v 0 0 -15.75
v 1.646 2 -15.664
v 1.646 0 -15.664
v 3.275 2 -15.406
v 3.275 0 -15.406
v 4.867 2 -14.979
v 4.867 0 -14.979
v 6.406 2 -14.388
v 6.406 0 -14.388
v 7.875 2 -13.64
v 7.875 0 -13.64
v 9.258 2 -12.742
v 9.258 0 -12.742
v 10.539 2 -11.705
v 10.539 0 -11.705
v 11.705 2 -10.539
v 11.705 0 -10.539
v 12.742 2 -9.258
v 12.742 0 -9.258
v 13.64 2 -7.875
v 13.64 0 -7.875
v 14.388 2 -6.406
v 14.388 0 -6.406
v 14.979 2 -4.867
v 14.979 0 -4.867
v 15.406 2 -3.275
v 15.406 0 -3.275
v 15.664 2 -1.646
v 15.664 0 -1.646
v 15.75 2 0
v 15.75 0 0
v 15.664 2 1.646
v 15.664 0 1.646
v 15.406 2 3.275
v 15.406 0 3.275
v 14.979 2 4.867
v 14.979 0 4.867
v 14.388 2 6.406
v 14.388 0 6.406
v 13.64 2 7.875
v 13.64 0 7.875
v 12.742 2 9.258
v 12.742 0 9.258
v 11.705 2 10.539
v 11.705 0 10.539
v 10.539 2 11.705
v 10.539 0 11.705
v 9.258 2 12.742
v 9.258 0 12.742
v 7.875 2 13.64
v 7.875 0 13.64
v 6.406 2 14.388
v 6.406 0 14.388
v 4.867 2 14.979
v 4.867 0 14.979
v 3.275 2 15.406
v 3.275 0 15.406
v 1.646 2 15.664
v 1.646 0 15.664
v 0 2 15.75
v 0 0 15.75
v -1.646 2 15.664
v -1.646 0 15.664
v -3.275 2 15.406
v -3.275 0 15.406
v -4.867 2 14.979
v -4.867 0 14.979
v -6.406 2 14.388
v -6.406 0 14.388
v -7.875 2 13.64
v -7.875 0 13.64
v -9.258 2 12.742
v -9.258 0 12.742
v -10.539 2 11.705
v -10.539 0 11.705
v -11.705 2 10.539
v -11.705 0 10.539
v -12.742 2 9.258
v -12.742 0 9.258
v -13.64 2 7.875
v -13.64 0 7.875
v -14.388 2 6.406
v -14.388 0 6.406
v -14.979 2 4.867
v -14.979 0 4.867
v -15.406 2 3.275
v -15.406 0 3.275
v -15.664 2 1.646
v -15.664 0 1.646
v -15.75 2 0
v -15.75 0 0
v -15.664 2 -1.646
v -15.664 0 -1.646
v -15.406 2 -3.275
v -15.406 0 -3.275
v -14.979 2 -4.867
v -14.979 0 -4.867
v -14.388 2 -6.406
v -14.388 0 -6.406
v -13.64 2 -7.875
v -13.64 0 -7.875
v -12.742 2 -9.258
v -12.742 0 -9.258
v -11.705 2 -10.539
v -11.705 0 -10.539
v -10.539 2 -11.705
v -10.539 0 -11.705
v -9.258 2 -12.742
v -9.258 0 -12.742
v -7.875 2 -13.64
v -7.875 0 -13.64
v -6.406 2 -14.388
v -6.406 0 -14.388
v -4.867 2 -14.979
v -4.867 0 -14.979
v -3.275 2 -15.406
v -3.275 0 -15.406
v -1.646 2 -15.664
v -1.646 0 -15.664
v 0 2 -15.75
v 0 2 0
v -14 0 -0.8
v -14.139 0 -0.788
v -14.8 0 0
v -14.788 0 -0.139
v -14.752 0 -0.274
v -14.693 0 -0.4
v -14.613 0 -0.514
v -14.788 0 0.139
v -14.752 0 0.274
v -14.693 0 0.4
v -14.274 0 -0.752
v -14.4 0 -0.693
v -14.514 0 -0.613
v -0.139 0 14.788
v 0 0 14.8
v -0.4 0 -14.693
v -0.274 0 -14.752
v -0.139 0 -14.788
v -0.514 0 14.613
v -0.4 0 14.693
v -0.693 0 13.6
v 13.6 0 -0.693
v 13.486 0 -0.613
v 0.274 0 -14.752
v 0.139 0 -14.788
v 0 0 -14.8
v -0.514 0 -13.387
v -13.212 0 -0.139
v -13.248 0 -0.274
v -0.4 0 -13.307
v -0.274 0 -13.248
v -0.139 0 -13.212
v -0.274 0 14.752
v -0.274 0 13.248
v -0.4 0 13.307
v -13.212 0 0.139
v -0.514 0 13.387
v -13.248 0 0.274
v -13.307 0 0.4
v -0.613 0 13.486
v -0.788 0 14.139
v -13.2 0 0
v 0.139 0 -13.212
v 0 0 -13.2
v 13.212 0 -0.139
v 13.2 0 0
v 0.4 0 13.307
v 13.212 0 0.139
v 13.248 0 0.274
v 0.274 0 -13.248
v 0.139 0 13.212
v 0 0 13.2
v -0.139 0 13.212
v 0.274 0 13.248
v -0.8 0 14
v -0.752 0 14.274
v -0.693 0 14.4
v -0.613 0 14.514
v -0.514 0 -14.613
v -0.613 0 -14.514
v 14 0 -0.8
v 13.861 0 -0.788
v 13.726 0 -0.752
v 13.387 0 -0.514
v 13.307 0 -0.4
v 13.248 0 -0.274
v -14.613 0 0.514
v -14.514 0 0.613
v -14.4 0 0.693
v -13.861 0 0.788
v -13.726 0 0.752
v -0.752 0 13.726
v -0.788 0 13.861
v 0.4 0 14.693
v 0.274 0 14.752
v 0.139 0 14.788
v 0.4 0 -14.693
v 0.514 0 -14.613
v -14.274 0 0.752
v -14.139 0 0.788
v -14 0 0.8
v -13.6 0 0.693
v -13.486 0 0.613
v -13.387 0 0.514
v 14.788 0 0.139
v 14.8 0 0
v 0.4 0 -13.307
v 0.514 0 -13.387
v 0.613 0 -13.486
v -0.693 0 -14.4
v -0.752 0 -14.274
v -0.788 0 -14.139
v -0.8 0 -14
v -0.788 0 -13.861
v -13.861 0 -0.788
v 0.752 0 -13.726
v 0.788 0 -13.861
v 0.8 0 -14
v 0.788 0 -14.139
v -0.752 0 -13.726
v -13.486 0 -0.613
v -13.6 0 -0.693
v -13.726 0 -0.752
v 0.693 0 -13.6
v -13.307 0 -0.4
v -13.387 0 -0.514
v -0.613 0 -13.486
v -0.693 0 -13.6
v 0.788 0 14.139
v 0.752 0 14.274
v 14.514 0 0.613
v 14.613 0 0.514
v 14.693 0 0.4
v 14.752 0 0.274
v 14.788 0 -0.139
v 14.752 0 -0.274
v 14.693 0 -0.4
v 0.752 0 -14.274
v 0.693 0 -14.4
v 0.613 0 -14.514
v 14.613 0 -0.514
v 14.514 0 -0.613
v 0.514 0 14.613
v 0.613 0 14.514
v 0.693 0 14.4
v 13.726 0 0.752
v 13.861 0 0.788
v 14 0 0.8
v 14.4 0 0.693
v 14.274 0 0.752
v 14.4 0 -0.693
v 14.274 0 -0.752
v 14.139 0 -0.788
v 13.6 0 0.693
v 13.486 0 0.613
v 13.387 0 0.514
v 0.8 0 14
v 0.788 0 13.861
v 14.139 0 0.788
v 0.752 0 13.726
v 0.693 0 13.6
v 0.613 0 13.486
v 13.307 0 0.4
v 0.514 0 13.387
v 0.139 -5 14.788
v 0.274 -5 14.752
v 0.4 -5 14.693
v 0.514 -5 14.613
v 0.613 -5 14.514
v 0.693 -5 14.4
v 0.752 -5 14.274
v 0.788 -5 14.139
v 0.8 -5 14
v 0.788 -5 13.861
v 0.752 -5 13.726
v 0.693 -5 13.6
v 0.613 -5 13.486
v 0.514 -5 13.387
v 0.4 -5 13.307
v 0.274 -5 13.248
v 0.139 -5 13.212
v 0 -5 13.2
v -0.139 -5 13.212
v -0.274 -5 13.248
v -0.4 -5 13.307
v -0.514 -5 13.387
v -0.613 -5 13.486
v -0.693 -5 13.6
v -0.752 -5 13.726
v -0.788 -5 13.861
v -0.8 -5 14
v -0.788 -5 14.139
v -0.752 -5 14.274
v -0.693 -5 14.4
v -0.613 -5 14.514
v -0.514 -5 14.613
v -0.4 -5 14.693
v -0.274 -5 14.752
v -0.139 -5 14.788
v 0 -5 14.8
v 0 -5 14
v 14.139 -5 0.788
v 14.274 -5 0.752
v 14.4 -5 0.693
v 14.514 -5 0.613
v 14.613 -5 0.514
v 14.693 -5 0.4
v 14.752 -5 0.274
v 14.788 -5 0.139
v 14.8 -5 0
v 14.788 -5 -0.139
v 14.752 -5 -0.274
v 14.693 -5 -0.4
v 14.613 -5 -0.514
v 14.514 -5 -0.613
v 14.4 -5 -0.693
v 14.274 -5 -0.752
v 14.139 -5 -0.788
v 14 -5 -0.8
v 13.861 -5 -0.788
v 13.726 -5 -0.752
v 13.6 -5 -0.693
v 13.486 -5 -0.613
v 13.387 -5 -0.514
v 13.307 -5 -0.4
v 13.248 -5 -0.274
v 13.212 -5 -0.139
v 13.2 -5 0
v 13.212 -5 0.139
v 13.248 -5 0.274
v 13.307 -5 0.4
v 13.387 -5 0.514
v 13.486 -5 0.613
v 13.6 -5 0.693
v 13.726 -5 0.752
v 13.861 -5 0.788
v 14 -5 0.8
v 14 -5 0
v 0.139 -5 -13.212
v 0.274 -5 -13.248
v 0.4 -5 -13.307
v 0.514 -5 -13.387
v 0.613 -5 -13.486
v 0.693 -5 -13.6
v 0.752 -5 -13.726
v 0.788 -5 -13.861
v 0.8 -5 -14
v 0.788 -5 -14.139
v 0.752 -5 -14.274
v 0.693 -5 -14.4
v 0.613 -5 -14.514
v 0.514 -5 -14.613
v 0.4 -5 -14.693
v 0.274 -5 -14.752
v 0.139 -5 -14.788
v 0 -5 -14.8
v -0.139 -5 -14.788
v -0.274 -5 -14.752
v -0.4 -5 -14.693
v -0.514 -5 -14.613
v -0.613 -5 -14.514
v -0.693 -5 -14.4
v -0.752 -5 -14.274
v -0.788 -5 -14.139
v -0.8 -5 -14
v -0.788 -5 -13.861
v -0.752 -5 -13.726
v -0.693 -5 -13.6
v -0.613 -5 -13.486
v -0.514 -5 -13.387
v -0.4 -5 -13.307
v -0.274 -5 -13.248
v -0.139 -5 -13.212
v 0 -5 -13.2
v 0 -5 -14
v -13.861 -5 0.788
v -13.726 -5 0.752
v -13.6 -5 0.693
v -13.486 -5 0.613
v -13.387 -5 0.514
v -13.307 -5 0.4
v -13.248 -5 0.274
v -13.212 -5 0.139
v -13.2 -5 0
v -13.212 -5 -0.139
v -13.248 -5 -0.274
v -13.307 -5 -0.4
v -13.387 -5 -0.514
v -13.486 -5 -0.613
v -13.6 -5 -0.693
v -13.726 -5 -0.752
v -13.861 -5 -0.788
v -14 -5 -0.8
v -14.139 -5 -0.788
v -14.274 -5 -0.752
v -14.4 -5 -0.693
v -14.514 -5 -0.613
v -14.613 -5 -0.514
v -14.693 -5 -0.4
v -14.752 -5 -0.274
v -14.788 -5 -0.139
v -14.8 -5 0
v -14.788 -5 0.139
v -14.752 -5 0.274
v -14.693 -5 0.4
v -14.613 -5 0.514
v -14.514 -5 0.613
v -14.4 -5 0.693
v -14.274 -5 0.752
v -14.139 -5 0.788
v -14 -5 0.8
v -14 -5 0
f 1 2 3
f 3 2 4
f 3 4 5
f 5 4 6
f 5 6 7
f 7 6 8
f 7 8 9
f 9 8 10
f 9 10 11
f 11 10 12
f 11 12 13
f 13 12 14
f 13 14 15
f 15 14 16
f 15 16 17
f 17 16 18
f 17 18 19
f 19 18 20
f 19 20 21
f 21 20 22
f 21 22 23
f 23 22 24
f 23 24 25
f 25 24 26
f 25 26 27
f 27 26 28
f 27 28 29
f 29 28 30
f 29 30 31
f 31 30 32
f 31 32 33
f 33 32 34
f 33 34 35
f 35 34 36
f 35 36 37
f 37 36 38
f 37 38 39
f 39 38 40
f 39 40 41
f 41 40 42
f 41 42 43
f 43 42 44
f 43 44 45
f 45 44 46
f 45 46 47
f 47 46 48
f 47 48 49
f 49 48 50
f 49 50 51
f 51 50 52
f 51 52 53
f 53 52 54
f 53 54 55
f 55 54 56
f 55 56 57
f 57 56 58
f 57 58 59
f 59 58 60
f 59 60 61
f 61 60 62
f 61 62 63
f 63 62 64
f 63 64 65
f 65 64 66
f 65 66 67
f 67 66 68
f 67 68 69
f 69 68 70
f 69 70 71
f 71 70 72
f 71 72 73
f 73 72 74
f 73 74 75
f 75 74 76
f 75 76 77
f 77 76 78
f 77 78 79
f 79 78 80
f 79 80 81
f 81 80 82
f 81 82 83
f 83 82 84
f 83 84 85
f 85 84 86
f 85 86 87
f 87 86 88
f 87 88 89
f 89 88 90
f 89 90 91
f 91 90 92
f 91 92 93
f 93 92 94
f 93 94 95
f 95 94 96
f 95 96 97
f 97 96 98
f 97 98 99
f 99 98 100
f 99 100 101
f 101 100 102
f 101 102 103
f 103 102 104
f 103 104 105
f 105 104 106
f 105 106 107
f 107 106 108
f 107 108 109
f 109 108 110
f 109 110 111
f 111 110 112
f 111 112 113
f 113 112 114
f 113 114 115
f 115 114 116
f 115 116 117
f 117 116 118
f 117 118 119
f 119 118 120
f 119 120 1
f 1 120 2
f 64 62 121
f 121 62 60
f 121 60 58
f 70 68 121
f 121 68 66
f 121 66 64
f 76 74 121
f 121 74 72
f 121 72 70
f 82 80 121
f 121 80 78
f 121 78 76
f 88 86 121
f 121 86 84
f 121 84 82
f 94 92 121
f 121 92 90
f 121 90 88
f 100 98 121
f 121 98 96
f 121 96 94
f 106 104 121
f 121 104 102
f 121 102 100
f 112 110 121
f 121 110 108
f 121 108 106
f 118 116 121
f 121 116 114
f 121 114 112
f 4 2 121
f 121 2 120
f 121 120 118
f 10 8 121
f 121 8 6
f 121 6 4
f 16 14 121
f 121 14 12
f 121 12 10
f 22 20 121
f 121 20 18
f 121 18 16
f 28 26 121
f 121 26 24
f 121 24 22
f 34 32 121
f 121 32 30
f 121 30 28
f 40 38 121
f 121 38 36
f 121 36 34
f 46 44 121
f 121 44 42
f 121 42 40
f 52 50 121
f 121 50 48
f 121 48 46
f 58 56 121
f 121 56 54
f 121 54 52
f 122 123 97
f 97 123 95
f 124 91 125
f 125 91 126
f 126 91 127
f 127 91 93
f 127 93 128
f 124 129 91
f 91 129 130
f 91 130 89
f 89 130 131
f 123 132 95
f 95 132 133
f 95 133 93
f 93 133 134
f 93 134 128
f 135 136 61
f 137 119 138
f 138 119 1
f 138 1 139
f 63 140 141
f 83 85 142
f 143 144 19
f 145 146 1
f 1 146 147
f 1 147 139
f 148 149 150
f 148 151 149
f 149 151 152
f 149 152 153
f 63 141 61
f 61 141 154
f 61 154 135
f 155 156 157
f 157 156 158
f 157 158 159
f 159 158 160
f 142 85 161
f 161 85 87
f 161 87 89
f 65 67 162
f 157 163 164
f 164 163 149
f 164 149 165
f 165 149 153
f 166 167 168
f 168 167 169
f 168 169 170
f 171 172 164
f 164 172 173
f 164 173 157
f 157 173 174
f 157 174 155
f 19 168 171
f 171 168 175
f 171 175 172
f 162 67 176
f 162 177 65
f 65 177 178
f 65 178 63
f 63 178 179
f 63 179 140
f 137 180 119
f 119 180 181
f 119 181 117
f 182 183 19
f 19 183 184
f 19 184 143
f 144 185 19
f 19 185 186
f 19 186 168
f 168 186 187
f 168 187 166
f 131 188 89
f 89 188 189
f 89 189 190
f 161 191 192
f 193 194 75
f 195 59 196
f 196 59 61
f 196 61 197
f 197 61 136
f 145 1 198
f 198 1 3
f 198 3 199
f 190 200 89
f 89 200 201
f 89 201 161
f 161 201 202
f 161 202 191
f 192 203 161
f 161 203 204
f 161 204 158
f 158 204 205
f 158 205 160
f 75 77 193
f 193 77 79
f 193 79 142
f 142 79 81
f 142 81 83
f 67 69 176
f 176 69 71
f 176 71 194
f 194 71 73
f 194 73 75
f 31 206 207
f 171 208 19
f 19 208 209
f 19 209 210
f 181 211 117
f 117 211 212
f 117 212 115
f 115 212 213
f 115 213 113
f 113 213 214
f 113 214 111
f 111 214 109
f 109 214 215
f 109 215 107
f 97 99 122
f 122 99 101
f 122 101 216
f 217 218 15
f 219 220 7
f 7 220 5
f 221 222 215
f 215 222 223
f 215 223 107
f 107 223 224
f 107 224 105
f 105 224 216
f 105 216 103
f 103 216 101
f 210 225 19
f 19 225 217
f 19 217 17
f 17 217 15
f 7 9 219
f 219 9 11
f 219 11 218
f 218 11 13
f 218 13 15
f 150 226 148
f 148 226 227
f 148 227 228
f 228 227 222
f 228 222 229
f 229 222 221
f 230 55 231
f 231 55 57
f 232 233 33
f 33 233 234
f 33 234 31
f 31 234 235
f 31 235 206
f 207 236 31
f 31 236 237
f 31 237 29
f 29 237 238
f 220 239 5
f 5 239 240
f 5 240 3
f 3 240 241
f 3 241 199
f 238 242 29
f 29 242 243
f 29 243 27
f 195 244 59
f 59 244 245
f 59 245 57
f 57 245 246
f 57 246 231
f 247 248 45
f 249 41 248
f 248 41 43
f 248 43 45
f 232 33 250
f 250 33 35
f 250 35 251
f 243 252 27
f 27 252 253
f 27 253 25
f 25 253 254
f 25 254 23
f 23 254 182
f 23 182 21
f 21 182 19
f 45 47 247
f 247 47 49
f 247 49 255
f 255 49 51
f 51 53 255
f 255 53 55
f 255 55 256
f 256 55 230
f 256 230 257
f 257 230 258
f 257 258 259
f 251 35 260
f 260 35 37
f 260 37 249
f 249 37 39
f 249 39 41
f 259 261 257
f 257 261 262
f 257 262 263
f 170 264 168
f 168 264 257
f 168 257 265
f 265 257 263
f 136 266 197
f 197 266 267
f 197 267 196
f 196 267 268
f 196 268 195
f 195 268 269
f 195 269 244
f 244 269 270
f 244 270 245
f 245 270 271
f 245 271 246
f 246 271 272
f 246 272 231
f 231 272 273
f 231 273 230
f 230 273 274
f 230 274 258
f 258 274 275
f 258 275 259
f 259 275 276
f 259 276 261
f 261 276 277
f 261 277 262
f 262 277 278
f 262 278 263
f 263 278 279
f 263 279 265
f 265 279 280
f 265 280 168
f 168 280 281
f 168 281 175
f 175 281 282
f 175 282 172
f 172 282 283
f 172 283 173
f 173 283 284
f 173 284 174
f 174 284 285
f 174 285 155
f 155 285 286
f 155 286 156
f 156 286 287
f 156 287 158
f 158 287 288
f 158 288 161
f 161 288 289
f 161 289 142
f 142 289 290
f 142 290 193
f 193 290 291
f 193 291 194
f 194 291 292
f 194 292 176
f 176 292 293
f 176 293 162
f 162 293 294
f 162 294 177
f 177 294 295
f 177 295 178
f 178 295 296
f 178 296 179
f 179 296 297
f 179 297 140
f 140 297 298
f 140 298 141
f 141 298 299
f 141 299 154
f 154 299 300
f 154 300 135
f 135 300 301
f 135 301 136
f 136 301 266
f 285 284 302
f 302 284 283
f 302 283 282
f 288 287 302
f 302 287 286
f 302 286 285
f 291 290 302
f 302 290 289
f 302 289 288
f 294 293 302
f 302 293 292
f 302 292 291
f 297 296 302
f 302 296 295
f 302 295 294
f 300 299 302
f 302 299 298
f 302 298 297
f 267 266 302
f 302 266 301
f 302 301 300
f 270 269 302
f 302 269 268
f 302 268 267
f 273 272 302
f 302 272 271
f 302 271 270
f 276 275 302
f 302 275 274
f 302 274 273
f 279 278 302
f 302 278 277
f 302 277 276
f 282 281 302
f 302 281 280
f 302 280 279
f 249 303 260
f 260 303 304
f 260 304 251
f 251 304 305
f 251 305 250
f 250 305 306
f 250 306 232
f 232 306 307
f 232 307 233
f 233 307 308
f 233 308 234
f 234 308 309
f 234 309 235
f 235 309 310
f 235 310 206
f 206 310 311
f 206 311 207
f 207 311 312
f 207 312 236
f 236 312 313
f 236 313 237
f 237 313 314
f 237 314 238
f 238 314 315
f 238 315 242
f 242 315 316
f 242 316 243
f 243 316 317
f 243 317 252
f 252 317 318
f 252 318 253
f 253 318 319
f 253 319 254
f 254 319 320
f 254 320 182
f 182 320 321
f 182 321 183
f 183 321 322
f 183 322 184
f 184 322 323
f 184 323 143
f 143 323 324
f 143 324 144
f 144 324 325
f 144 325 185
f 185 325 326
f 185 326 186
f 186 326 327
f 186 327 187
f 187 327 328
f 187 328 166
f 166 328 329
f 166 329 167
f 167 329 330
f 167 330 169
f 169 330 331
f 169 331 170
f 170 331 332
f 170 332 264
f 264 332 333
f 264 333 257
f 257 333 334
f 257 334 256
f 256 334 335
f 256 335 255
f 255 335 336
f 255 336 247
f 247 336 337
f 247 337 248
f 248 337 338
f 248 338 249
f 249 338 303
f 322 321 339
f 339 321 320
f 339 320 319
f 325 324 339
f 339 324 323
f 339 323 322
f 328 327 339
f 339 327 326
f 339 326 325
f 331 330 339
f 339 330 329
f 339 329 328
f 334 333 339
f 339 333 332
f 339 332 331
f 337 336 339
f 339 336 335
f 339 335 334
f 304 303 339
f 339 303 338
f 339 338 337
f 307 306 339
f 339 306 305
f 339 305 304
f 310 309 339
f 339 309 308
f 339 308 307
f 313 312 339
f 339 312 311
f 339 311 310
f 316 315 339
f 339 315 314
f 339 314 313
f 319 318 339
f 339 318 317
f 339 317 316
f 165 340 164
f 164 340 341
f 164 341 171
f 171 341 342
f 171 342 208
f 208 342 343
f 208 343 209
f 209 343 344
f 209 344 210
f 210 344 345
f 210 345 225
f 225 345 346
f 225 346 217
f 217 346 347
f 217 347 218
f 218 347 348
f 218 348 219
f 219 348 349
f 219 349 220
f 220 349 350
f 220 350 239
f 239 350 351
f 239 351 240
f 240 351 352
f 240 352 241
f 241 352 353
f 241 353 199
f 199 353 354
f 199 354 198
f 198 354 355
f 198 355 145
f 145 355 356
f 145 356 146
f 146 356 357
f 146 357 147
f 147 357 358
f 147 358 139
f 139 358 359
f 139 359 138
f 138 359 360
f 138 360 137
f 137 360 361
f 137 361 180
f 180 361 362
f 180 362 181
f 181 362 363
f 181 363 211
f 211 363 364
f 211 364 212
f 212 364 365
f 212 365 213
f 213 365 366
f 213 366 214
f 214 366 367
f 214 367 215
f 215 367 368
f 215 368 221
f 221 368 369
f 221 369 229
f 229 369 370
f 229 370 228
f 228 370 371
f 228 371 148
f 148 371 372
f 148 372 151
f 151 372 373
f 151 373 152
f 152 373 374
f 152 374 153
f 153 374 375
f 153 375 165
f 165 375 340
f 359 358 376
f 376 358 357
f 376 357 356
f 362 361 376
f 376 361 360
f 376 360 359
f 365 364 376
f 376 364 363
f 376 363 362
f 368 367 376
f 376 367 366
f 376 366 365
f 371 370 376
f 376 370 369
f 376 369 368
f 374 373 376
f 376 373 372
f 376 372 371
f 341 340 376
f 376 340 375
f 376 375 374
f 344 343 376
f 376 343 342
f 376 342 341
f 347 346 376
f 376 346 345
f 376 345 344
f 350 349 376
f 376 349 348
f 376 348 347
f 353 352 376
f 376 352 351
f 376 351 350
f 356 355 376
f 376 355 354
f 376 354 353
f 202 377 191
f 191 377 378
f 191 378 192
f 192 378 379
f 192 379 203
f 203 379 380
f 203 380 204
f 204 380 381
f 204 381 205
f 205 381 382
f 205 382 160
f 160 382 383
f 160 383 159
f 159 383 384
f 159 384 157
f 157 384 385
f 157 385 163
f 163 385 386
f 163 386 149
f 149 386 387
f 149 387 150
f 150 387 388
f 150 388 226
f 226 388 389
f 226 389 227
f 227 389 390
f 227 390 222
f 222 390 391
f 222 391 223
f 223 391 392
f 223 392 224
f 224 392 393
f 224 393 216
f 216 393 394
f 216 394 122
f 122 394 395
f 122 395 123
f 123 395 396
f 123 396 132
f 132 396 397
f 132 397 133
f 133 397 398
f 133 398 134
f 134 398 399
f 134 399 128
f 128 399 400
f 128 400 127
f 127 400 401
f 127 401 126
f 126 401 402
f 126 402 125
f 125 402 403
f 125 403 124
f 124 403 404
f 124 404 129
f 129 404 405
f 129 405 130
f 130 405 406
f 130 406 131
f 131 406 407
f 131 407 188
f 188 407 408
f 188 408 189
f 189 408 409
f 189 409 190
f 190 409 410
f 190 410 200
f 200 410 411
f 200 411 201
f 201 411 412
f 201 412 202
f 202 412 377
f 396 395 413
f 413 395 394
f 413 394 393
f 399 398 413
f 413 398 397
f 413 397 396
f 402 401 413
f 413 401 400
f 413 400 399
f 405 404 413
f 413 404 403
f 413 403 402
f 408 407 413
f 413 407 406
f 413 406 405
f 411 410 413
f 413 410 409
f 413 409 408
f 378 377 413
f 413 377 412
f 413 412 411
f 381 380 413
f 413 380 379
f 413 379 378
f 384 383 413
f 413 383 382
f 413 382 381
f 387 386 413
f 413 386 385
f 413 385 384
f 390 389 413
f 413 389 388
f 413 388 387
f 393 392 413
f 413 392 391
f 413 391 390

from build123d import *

# Parameters (mm, degrees)
SKETCH7_R           = 15.75
BOSS_EXTRUDE5_DEPTH = 2
SKETCH8_R           = 0.8
BOSS_EXTRUDE6_DEPTH = 5


with BuildPart() as part:
    # Sketch7 → Boss-Extrude5 (new body)
    with BuildSketch(Plane(origin=(0, 0, 0), x_dir=(1, 0, 0), z_dir=(0, 1, 0))):
        with Locations(Location((0, 0, 0), (0, 0, 270))):
            Circle(SKETCH7_R)
    extrude(amount=BOSS_EXTRUDE5_DEPTH)

    # Sketch8 → Boss-Extrude6 (add)
    with BuildSketch(Plane.XZ):
        with Locations(Location((0, 14, 0), (0, 0, 90))):
            Circle(SKETCH8_R)
        with Locations(Location((14, 0, 0), (0, 0, 90))):
            Circle(SKETCH8_R)
        with Locations(Location((0, -14, 0), (0, 0, 90))):
            Circle(SKETCH8_R)
        with Locations(Location((-14, 0, 0), (0, 0, 90))):
            Circle(SKETCH8_R)
    extrude(amount=BOSS_EXTRUDE6_DEPTH)


solid = part.part
